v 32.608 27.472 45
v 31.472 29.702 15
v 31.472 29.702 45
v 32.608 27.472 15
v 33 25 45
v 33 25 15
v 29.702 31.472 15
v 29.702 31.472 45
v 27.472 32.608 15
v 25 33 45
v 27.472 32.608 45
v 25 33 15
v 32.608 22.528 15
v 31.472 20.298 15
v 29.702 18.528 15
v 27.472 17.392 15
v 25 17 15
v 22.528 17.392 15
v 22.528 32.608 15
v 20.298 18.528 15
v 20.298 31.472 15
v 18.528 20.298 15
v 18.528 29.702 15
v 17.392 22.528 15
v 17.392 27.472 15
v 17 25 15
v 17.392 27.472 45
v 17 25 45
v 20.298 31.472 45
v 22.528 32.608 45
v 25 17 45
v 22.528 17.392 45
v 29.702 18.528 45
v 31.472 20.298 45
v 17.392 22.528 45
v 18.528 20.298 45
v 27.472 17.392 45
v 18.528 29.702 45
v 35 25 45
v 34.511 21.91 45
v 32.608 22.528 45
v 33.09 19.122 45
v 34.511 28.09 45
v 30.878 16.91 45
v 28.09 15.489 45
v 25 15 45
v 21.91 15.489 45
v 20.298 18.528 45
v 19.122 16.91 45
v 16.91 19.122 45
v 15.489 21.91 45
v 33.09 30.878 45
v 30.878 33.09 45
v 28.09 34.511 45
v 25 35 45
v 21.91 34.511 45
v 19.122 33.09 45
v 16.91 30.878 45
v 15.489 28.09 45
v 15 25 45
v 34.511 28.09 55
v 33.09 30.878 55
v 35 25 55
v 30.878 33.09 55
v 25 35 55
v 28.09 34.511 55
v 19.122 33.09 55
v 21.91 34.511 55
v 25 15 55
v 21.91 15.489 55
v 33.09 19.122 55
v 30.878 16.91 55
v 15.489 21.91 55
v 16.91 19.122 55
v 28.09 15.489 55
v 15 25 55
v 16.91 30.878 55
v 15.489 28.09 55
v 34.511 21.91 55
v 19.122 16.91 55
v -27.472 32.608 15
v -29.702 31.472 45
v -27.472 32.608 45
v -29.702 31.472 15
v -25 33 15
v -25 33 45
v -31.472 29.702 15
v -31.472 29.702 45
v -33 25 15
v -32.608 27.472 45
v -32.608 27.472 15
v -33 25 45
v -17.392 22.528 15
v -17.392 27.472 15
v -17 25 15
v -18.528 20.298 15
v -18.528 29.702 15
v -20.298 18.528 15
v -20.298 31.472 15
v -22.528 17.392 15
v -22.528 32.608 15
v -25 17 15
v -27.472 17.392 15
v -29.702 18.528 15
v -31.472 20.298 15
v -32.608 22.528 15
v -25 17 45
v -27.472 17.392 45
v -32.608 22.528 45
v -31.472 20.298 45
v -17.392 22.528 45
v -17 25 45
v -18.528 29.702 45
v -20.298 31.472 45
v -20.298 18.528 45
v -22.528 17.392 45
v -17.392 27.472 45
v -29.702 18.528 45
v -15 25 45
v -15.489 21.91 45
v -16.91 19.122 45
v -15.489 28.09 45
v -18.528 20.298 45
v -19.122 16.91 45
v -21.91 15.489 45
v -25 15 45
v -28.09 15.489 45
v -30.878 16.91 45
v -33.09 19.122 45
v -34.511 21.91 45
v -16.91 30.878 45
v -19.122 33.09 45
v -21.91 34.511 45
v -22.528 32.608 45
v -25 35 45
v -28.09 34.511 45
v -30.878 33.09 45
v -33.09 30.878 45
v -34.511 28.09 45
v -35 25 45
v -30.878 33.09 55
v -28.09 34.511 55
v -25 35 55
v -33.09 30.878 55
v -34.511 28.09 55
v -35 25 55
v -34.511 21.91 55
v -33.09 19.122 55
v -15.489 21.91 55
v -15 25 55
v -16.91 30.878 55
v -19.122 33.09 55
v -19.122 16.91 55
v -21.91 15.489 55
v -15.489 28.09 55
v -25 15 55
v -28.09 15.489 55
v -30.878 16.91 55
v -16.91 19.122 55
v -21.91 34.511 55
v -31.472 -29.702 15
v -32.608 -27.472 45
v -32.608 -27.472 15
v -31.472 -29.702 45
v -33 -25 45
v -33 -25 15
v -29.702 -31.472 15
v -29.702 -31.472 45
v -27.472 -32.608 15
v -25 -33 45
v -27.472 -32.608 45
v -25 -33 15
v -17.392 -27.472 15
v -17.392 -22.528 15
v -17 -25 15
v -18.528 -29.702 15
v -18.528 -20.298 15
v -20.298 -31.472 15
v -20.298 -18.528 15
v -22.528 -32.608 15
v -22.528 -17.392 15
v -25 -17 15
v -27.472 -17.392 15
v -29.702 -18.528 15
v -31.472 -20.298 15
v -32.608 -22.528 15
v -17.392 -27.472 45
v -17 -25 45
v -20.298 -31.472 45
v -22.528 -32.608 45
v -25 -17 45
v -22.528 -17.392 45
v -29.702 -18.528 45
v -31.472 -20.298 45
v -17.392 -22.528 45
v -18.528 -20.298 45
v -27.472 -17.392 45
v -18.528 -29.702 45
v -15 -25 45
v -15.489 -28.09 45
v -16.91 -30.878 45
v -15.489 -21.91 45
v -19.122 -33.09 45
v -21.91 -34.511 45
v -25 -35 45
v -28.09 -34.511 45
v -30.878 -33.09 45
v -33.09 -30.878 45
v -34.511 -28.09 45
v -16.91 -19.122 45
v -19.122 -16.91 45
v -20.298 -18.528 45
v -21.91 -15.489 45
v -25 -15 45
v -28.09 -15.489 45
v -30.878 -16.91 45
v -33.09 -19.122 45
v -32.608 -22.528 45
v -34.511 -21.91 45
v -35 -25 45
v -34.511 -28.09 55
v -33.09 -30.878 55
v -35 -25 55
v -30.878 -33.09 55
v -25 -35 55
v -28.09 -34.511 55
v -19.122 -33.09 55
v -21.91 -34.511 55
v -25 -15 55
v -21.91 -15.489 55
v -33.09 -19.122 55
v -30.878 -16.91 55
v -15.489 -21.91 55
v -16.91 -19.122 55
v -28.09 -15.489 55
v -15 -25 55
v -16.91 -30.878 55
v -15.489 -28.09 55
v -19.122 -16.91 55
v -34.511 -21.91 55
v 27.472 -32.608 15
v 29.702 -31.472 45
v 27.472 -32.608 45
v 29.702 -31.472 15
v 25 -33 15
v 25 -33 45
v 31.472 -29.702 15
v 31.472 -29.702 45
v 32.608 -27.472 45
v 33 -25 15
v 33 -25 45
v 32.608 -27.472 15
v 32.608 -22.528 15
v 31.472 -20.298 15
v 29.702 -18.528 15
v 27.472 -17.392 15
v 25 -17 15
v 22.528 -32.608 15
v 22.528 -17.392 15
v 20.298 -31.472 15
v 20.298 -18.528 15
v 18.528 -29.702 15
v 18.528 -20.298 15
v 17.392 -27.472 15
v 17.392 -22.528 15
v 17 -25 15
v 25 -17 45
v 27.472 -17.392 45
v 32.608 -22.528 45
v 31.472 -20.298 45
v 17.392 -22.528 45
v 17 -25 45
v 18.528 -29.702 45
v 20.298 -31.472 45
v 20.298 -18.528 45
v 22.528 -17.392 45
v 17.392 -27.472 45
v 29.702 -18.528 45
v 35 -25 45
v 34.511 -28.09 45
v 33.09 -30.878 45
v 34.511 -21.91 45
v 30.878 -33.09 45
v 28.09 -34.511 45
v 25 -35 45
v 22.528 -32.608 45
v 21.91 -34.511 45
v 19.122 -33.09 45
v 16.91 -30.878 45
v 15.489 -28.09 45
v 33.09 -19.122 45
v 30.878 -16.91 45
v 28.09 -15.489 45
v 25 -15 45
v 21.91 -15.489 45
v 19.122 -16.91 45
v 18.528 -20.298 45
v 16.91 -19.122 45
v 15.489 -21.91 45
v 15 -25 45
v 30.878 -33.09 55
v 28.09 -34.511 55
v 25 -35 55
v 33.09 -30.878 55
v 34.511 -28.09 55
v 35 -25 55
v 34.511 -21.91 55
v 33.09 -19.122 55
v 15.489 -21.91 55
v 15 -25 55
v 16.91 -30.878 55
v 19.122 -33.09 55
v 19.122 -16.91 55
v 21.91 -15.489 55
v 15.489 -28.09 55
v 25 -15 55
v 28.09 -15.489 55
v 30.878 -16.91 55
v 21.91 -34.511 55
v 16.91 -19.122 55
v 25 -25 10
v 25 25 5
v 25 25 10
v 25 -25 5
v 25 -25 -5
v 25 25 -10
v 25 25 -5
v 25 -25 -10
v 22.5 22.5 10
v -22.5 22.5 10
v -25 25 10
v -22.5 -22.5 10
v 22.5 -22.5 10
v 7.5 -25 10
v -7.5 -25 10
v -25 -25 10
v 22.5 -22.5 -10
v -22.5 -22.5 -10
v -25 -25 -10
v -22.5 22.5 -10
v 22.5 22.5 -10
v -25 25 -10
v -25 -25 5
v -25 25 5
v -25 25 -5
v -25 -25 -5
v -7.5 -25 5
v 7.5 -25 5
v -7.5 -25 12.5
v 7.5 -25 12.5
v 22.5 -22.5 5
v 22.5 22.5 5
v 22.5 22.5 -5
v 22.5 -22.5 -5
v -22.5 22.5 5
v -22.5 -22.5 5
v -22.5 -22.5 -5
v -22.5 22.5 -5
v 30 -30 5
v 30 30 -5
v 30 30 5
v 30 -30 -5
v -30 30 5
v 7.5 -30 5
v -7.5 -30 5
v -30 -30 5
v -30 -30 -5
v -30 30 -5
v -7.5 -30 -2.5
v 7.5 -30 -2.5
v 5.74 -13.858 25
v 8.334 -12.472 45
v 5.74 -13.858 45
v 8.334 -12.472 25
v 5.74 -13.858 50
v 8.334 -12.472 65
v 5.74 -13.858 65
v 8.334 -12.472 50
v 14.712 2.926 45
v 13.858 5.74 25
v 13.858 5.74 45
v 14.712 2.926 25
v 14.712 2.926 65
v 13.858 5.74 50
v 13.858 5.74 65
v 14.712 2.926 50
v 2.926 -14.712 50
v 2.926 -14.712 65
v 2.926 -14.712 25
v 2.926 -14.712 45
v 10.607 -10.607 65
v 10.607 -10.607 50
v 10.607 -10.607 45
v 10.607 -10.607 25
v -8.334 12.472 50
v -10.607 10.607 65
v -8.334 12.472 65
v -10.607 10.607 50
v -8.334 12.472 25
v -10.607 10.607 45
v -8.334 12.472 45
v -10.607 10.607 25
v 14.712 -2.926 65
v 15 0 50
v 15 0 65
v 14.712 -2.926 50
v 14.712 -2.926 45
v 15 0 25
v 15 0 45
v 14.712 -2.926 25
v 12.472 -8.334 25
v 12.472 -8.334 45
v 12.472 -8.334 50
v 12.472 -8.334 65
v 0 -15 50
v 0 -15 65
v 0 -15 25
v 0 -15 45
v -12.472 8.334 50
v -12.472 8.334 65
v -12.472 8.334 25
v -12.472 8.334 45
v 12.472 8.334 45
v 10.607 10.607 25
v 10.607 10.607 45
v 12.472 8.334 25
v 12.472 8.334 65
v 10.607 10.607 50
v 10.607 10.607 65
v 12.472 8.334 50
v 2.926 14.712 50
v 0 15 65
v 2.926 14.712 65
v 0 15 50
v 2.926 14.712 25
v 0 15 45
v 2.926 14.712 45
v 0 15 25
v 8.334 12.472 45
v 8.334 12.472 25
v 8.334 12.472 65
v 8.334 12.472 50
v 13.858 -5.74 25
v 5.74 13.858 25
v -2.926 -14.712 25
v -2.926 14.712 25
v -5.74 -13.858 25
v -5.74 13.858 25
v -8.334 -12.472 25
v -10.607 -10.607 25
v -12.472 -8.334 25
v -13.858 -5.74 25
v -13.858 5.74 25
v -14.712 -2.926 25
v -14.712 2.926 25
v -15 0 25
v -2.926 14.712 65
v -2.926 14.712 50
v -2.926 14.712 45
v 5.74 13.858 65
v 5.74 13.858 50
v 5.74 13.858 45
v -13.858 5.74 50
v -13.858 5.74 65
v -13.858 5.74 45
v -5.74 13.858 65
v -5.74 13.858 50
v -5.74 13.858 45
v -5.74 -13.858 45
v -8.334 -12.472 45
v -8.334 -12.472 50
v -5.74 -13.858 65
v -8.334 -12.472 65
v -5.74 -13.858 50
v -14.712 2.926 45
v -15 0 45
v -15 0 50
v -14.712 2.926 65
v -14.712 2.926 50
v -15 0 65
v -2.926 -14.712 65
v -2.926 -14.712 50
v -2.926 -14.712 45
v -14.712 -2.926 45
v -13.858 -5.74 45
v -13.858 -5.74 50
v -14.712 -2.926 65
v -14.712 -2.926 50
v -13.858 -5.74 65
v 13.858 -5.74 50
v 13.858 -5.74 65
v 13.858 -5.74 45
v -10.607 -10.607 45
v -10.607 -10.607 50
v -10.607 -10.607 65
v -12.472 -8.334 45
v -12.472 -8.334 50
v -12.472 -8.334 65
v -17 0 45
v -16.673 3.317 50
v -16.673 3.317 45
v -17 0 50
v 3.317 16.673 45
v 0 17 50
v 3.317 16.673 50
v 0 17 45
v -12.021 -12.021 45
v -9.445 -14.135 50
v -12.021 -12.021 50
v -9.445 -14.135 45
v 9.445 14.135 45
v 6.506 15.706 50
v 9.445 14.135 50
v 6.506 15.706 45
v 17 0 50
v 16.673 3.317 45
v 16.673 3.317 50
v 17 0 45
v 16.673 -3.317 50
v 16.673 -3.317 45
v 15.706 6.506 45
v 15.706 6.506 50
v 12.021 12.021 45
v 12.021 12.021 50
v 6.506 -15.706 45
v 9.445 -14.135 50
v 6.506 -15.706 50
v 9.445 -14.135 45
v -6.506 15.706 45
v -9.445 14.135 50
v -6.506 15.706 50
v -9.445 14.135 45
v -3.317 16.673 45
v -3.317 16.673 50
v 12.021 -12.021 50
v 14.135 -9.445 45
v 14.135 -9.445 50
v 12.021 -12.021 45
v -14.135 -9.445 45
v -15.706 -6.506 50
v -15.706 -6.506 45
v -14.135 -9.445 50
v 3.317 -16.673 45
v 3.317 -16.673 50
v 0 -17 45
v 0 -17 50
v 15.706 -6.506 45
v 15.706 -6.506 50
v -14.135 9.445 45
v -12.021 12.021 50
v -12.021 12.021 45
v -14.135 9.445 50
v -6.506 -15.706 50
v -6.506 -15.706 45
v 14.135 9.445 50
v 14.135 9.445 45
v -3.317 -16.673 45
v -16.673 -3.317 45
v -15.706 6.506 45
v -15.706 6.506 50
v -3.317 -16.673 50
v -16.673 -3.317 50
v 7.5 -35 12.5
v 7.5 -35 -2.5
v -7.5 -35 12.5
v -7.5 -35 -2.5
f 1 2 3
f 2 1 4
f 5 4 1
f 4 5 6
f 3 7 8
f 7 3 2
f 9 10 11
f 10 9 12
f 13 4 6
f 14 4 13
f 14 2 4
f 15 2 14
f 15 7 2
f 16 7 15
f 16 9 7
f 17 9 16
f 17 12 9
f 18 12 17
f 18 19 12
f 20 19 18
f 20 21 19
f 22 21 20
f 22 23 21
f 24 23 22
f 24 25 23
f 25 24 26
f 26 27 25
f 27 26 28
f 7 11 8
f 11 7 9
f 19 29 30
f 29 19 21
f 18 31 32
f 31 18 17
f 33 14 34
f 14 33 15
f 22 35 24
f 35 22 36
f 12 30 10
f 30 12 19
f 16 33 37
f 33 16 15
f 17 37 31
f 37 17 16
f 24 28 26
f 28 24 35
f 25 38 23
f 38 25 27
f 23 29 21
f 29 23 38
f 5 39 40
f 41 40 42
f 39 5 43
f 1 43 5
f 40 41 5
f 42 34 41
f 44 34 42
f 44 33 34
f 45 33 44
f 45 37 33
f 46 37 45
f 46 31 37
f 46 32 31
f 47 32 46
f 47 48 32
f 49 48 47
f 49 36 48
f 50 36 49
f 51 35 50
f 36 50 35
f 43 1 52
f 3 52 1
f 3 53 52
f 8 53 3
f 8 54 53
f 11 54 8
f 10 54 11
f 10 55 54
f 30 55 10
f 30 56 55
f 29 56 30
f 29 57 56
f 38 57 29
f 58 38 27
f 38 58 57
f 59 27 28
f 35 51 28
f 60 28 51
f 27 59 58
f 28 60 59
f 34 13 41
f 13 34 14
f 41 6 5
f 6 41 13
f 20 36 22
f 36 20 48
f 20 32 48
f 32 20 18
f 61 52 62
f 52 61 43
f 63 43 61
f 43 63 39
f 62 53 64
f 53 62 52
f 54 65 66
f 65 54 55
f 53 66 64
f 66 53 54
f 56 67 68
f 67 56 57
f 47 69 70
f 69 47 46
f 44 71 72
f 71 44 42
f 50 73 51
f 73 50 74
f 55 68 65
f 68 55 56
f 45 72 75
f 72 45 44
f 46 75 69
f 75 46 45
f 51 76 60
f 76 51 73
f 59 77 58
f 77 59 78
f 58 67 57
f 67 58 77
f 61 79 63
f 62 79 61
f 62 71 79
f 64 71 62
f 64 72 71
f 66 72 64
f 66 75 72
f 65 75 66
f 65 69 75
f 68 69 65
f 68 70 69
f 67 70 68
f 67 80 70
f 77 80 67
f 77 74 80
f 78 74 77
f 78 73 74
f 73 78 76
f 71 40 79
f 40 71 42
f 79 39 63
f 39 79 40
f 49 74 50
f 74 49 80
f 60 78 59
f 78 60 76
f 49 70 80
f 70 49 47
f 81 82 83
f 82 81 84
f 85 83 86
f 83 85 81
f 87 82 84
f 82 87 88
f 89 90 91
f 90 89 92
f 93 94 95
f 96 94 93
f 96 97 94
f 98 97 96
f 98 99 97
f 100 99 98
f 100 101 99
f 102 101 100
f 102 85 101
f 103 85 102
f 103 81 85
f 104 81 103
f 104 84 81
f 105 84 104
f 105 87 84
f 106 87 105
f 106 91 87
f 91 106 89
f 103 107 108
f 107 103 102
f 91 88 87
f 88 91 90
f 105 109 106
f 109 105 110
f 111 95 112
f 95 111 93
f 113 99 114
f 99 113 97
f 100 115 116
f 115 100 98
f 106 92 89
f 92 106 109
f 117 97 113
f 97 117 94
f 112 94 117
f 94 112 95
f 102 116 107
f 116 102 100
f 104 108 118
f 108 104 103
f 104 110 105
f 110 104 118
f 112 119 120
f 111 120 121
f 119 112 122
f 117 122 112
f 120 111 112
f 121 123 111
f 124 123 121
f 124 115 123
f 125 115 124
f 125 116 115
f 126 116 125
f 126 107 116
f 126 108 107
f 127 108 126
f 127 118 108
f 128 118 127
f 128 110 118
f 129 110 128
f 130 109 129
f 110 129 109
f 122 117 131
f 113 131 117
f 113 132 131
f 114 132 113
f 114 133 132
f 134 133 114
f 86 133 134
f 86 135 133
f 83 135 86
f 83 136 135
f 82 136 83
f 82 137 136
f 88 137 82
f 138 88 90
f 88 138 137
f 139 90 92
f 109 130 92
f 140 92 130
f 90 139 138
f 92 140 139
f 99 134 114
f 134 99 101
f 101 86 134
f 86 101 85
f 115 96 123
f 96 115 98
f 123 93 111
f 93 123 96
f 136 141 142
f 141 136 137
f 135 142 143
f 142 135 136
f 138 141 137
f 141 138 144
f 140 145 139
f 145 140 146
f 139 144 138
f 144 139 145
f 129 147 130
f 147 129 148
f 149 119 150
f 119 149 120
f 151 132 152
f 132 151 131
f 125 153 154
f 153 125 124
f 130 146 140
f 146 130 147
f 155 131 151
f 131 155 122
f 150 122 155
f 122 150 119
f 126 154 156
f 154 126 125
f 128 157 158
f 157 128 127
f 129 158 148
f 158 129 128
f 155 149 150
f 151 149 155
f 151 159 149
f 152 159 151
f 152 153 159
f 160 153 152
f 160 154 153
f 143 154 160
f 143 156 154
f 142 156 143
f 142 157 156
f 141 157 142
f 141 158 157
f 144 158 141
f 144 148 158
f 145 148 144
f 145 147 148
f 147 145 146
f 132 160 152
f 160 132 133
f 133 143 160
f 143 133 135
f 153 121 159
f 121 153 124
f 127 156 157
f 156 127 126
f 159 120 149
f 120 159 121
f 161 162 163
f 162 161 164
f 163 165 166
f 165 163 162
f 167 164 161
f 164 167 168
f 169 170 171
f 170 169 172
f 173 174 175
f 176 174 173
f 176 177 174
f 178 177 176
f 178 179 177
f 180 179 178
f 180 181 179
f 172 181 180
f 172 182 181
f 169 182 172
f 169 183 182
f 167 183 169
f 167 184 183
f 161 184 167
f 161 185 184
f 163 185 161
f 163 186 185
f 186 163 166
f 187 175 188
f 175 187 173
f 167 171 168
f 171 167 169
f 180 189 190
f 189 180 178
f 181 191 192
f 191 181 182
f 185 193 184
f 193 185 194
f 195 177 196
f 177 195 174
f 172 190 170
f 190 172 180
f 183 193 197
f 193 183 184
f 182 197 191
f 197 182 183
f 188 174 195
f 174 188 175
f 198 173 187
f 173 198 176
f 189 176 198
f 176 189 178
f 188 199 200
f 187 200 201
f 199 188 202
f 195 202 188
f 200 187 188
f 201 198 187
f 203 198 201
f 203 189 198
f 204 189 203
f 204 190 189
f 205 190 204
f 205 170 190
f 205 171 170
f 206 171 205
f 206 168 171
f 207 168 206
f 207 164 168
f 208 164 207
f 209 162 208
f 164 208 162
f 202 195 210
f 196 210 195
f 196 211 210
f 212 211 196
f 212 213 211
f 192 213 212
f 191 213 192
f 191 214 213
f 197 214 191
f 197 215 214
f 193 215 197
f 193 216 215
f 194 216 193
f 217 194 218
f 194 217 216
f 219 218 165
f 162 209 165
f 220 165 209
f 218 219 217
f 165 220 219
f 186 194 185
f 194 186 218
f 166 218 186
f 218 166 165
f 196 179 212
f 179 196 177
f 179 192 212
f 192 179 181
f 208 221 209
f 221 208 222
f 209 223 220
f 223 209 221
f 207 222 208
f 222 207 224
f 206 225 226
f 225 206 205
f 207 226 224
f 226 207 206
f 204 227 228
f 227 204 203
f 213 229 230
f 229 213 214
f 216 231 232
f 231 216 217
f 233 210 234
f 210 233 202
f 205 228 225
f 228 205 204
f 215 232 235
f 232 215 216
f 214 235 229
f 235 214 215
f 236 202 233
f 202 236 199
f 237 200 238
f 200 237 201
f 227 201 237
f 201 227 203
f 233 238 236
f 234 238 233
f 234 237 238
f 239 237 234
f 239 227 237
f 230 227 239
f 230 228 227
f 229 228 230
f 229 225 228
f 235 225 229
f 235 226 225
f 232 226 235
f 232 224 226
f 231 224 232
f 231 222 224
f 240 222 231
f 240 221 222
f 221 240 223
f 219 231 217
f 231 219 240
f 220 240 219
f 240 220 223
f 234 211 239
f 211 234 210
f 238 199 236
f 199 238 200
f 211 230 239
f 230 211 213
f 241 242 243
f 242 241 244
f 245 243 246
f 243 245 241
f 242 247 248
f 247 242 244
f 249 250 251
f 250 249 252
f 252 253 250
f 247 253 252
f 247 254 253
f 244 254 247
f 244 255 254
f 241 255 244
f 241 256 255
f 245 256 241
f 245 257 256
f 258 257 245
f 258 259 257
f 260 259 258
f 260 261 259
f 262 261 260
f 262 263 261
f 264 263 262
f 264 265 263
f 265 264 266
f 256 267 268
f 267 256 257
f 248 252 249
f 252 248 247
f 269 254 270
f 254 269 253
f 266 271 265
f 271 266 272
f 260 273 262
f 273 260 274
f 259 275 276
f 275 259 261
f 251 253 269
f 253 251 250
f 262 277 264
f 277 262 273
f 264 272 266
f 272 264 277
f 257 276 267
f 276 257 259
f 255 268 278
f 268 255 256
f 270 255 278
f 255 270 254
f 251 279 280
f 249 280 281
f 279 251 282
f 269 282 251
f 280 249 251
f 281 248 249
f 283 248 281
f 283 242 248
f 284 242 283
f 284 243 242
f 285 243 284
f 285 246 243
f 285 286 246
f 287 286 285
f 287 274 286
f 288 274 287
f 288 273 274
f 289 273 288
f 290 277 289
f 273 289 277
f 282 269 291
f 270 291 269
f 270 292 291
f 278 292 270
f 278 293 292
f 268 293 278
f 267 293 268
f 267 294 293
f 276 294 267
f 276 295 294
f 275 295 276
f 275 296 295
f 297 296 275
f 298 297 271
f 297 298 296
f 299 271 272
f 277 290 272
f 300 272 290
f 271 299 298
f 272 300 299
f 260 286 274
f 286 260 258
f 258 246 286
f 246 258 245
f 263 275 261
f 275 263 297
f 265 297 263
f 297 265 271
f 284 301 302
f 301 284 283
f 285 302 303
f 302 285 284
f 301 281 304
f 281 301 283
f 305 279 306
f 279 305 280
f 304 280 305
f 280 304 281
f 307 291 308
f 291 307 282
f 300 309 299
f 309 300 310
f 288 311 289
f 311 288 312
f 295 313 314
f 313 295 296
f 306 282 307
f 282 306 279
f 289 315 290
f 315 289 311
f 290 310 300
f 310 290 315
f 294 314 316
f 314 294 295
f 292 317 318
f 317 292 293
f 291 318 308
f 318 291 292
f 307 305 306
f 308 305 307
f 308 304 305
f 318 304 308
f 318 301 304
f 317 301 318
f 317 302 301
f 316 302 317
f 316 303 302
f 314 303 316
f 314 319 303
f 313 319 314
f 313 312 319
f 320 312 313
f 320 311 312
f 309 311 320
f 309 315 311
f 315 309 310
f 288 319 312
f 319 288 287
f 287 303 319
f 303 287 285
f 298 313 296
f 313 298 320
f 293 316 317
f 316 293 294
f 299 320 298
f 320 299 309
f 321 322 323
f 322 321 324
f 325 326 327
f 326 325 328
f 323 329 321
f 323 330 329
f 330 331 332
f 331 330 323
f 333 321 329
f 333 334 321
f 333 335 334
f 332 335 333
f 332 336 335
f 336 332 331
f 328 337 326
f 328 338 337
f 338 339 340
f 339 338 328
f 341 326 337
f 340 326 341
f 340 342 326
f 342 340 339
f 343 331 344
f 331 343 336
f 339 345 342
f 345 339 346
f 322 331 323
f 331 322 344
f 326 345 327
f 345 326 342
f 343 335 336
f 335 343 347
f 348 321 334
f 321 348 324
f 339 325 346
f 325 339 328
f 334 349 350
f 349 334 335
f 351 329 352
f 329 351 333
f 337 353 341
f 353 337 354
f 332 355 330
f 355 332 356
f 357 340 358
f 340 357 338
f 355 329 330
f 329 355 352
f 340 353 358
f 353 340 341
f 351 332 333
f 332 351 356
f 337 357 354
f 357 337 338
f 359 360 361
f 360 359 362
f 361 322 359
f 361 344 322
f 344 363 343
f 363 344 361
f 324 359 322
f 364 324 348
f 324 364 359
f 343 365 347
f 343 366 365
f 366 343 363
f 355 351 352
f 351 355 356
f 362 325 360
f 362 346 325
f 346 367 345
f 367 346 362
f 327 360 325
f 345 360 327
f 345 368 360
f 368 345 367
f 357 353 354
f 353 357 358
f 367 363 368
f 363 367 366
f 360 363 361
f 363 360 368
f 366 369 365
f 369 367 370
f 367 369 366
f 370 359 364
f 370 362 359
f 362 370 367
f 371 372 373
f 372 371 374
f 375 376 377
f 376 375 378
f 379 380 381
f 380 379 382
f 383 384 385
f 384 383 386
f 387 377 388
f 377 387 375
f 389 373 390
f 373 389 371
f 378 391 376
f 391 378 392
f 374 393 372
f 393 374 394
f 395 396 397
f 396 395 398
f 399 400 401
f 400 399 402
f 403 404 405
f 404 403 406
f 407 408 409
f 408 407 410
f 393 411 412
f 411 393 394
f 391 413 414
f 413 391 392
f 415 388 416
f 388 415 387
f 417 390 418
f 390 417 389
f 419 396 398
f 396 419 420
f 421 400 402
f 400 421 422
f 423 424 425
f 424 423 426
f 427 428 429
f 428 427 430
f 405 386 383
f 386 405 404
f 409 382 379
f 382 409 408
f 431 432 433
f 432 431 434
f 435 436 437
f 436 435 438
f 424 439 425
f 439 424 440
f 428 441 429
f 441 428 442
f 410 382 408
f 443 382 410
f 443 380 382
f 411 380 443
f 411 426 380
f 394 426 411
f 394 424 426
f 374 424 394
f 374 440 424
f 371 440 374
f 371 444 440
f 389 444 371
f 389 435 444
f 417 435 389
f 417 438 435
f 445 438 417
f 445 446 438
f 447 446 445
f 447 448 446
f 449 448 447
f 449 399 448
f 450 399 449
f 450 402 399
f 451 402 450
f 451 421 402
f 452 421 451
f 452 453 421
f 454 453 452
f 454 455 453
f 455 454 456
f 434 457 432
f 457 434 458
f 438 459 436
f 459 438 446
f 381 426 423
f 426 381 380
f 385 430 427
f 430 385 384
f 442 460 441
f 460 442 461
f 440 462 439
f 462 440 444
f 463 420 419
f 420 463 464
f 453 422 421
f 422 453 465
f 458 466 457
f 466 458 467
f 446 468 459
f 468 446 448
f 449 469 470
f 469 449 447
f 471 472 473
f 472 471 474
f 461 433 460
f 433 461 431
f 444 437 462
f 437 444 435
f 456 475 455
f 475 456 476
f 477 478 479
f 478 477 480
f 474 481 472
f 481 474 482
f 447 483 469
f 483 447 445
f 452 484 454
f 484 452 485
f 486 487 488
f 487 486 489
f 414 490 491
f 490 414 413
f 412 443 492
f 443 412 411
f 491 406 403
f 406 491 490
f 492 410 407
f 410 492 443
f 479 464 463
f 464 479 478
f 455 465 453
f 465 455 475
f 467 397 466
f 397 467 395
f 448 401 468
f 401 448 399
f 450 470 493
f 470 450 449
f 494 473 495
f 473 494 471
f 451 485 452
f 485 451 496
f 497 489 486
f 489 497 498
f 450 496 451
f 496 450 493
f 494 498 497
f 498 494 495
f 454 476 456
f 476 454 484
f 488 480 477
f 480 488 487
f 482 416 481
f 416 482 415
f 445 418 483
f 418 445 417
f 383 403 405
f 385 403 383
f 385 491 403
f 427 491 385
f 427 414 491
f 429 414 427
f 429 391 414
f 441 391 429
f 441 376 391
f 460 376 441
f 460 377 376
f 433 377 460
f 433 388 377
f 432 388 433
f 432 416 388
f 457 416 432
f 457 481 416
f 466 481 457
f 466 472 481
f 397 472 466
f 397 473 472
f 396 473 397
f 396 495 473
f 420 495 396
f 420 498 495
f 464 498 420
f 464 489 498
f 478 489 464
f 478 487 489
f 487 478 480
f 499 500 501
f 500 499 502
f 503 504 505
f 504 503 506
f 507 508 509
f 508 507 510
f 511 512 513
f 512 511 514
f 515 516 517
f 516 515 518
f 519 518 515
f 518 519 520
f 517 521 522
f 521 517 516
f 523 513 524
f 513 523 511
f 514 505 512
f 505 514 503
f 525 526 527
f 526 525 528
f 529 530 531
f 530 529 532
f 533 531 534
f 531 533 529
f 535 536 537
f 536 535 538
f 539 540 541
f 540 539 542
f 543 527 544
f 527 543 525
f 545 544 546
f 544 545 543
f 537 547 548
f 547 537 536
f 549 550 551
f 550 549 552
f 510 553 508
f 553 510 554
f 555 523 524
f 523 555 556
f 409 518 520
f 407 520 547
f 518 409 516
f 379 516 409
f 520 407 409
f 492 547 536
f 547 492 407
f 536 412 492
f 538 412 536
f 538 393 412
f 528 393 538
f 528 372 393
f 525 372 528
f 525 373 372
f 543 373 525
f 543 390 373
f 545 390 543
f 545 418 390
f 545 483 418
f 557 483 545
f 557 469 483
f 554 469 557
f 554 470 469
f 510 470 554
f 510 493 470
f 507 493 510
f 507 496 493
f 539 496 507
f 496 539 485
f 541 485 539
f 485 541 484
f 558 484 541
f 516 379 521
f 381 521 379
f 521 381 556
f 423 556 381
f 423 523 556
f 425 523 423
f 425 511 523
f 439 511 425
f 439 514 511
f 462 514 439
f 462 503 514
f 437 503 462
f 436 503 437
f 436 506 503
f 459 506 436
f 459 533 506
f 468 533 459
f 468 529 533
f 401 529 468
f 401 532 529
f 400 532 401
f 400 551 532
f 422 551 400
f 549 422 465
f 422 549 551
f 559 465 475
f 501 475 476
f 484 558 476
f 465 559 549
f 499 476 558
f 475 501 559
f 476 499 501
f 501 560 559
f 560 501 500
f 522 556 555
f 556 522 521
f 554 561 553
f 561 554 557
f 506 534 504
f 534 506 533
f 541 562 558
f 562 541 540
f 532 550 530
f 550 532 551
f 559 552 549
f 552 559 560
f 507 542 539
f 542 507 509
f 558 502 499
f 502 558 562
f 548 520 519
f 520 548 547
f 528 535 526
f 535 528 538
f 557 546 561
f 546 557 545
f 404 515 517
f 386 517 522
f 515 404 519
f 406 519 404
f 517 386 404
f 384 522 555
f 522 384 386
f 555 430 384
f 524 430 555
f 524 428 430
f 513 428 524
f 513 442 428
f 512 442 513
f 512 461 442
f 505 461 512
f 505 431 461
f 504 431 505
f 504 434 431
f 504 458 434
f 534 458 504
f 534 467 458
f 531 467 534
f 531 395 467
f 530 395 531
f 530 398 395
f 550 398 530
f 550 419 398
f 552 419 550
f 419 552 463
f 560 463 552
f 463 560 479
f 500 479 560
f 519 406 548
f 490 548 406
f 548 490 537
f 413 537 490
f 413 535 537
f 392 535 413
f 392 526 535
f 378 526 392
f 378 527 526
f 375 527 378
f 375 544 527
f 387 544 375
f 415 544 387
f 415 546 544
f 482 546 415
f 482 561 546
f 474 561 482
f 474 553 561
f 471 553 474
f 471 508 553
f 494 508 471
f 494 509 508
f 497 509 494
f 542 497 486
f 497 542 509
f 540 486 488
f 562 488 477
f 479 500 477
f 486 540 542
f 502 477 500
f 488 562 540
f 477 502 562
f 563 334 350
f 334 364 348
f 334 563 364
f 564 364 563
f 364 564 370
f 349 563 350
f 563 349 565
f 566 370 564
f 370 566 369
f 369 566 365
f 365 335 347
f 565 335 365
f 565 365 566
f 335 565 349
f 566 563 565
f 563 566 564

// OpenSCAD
module castle() {
    // Base/Foundation
    cube([60, 60, 10], center=true);
    
    // Main Keep/Central Tower
    translate([0, 0, 25])
    cylinder(h=40, r=15, $fn=32);
    
    // Battlements on Main Keep
    translate([0, 0, 45])
    cylinder(h=5, r=17, $fn=32);
    
    // Side Towers
    for (i = [0, 1, 2, 3]) {
        rotate([0, 0, i * 90])
        translate([25, 25, 15])
        union() {
            cylinder(h=30, r=8, $fn=20);
            translate([0, 0, 30])
            cylinder(h=10, r=10, $fn=20);
        }
    }
    
    // Walls
    difference() {
        cube([50, 50, 20], center=true);
        cube([45, 45, 25], center=true);
        // Inner hollow for courtyard
        cube([30, 30, 30], center=true);
    }
    
    // Gate
    translate([0, -30, 5])
    cube([15, 10, 15], center=true);
}

castle();
